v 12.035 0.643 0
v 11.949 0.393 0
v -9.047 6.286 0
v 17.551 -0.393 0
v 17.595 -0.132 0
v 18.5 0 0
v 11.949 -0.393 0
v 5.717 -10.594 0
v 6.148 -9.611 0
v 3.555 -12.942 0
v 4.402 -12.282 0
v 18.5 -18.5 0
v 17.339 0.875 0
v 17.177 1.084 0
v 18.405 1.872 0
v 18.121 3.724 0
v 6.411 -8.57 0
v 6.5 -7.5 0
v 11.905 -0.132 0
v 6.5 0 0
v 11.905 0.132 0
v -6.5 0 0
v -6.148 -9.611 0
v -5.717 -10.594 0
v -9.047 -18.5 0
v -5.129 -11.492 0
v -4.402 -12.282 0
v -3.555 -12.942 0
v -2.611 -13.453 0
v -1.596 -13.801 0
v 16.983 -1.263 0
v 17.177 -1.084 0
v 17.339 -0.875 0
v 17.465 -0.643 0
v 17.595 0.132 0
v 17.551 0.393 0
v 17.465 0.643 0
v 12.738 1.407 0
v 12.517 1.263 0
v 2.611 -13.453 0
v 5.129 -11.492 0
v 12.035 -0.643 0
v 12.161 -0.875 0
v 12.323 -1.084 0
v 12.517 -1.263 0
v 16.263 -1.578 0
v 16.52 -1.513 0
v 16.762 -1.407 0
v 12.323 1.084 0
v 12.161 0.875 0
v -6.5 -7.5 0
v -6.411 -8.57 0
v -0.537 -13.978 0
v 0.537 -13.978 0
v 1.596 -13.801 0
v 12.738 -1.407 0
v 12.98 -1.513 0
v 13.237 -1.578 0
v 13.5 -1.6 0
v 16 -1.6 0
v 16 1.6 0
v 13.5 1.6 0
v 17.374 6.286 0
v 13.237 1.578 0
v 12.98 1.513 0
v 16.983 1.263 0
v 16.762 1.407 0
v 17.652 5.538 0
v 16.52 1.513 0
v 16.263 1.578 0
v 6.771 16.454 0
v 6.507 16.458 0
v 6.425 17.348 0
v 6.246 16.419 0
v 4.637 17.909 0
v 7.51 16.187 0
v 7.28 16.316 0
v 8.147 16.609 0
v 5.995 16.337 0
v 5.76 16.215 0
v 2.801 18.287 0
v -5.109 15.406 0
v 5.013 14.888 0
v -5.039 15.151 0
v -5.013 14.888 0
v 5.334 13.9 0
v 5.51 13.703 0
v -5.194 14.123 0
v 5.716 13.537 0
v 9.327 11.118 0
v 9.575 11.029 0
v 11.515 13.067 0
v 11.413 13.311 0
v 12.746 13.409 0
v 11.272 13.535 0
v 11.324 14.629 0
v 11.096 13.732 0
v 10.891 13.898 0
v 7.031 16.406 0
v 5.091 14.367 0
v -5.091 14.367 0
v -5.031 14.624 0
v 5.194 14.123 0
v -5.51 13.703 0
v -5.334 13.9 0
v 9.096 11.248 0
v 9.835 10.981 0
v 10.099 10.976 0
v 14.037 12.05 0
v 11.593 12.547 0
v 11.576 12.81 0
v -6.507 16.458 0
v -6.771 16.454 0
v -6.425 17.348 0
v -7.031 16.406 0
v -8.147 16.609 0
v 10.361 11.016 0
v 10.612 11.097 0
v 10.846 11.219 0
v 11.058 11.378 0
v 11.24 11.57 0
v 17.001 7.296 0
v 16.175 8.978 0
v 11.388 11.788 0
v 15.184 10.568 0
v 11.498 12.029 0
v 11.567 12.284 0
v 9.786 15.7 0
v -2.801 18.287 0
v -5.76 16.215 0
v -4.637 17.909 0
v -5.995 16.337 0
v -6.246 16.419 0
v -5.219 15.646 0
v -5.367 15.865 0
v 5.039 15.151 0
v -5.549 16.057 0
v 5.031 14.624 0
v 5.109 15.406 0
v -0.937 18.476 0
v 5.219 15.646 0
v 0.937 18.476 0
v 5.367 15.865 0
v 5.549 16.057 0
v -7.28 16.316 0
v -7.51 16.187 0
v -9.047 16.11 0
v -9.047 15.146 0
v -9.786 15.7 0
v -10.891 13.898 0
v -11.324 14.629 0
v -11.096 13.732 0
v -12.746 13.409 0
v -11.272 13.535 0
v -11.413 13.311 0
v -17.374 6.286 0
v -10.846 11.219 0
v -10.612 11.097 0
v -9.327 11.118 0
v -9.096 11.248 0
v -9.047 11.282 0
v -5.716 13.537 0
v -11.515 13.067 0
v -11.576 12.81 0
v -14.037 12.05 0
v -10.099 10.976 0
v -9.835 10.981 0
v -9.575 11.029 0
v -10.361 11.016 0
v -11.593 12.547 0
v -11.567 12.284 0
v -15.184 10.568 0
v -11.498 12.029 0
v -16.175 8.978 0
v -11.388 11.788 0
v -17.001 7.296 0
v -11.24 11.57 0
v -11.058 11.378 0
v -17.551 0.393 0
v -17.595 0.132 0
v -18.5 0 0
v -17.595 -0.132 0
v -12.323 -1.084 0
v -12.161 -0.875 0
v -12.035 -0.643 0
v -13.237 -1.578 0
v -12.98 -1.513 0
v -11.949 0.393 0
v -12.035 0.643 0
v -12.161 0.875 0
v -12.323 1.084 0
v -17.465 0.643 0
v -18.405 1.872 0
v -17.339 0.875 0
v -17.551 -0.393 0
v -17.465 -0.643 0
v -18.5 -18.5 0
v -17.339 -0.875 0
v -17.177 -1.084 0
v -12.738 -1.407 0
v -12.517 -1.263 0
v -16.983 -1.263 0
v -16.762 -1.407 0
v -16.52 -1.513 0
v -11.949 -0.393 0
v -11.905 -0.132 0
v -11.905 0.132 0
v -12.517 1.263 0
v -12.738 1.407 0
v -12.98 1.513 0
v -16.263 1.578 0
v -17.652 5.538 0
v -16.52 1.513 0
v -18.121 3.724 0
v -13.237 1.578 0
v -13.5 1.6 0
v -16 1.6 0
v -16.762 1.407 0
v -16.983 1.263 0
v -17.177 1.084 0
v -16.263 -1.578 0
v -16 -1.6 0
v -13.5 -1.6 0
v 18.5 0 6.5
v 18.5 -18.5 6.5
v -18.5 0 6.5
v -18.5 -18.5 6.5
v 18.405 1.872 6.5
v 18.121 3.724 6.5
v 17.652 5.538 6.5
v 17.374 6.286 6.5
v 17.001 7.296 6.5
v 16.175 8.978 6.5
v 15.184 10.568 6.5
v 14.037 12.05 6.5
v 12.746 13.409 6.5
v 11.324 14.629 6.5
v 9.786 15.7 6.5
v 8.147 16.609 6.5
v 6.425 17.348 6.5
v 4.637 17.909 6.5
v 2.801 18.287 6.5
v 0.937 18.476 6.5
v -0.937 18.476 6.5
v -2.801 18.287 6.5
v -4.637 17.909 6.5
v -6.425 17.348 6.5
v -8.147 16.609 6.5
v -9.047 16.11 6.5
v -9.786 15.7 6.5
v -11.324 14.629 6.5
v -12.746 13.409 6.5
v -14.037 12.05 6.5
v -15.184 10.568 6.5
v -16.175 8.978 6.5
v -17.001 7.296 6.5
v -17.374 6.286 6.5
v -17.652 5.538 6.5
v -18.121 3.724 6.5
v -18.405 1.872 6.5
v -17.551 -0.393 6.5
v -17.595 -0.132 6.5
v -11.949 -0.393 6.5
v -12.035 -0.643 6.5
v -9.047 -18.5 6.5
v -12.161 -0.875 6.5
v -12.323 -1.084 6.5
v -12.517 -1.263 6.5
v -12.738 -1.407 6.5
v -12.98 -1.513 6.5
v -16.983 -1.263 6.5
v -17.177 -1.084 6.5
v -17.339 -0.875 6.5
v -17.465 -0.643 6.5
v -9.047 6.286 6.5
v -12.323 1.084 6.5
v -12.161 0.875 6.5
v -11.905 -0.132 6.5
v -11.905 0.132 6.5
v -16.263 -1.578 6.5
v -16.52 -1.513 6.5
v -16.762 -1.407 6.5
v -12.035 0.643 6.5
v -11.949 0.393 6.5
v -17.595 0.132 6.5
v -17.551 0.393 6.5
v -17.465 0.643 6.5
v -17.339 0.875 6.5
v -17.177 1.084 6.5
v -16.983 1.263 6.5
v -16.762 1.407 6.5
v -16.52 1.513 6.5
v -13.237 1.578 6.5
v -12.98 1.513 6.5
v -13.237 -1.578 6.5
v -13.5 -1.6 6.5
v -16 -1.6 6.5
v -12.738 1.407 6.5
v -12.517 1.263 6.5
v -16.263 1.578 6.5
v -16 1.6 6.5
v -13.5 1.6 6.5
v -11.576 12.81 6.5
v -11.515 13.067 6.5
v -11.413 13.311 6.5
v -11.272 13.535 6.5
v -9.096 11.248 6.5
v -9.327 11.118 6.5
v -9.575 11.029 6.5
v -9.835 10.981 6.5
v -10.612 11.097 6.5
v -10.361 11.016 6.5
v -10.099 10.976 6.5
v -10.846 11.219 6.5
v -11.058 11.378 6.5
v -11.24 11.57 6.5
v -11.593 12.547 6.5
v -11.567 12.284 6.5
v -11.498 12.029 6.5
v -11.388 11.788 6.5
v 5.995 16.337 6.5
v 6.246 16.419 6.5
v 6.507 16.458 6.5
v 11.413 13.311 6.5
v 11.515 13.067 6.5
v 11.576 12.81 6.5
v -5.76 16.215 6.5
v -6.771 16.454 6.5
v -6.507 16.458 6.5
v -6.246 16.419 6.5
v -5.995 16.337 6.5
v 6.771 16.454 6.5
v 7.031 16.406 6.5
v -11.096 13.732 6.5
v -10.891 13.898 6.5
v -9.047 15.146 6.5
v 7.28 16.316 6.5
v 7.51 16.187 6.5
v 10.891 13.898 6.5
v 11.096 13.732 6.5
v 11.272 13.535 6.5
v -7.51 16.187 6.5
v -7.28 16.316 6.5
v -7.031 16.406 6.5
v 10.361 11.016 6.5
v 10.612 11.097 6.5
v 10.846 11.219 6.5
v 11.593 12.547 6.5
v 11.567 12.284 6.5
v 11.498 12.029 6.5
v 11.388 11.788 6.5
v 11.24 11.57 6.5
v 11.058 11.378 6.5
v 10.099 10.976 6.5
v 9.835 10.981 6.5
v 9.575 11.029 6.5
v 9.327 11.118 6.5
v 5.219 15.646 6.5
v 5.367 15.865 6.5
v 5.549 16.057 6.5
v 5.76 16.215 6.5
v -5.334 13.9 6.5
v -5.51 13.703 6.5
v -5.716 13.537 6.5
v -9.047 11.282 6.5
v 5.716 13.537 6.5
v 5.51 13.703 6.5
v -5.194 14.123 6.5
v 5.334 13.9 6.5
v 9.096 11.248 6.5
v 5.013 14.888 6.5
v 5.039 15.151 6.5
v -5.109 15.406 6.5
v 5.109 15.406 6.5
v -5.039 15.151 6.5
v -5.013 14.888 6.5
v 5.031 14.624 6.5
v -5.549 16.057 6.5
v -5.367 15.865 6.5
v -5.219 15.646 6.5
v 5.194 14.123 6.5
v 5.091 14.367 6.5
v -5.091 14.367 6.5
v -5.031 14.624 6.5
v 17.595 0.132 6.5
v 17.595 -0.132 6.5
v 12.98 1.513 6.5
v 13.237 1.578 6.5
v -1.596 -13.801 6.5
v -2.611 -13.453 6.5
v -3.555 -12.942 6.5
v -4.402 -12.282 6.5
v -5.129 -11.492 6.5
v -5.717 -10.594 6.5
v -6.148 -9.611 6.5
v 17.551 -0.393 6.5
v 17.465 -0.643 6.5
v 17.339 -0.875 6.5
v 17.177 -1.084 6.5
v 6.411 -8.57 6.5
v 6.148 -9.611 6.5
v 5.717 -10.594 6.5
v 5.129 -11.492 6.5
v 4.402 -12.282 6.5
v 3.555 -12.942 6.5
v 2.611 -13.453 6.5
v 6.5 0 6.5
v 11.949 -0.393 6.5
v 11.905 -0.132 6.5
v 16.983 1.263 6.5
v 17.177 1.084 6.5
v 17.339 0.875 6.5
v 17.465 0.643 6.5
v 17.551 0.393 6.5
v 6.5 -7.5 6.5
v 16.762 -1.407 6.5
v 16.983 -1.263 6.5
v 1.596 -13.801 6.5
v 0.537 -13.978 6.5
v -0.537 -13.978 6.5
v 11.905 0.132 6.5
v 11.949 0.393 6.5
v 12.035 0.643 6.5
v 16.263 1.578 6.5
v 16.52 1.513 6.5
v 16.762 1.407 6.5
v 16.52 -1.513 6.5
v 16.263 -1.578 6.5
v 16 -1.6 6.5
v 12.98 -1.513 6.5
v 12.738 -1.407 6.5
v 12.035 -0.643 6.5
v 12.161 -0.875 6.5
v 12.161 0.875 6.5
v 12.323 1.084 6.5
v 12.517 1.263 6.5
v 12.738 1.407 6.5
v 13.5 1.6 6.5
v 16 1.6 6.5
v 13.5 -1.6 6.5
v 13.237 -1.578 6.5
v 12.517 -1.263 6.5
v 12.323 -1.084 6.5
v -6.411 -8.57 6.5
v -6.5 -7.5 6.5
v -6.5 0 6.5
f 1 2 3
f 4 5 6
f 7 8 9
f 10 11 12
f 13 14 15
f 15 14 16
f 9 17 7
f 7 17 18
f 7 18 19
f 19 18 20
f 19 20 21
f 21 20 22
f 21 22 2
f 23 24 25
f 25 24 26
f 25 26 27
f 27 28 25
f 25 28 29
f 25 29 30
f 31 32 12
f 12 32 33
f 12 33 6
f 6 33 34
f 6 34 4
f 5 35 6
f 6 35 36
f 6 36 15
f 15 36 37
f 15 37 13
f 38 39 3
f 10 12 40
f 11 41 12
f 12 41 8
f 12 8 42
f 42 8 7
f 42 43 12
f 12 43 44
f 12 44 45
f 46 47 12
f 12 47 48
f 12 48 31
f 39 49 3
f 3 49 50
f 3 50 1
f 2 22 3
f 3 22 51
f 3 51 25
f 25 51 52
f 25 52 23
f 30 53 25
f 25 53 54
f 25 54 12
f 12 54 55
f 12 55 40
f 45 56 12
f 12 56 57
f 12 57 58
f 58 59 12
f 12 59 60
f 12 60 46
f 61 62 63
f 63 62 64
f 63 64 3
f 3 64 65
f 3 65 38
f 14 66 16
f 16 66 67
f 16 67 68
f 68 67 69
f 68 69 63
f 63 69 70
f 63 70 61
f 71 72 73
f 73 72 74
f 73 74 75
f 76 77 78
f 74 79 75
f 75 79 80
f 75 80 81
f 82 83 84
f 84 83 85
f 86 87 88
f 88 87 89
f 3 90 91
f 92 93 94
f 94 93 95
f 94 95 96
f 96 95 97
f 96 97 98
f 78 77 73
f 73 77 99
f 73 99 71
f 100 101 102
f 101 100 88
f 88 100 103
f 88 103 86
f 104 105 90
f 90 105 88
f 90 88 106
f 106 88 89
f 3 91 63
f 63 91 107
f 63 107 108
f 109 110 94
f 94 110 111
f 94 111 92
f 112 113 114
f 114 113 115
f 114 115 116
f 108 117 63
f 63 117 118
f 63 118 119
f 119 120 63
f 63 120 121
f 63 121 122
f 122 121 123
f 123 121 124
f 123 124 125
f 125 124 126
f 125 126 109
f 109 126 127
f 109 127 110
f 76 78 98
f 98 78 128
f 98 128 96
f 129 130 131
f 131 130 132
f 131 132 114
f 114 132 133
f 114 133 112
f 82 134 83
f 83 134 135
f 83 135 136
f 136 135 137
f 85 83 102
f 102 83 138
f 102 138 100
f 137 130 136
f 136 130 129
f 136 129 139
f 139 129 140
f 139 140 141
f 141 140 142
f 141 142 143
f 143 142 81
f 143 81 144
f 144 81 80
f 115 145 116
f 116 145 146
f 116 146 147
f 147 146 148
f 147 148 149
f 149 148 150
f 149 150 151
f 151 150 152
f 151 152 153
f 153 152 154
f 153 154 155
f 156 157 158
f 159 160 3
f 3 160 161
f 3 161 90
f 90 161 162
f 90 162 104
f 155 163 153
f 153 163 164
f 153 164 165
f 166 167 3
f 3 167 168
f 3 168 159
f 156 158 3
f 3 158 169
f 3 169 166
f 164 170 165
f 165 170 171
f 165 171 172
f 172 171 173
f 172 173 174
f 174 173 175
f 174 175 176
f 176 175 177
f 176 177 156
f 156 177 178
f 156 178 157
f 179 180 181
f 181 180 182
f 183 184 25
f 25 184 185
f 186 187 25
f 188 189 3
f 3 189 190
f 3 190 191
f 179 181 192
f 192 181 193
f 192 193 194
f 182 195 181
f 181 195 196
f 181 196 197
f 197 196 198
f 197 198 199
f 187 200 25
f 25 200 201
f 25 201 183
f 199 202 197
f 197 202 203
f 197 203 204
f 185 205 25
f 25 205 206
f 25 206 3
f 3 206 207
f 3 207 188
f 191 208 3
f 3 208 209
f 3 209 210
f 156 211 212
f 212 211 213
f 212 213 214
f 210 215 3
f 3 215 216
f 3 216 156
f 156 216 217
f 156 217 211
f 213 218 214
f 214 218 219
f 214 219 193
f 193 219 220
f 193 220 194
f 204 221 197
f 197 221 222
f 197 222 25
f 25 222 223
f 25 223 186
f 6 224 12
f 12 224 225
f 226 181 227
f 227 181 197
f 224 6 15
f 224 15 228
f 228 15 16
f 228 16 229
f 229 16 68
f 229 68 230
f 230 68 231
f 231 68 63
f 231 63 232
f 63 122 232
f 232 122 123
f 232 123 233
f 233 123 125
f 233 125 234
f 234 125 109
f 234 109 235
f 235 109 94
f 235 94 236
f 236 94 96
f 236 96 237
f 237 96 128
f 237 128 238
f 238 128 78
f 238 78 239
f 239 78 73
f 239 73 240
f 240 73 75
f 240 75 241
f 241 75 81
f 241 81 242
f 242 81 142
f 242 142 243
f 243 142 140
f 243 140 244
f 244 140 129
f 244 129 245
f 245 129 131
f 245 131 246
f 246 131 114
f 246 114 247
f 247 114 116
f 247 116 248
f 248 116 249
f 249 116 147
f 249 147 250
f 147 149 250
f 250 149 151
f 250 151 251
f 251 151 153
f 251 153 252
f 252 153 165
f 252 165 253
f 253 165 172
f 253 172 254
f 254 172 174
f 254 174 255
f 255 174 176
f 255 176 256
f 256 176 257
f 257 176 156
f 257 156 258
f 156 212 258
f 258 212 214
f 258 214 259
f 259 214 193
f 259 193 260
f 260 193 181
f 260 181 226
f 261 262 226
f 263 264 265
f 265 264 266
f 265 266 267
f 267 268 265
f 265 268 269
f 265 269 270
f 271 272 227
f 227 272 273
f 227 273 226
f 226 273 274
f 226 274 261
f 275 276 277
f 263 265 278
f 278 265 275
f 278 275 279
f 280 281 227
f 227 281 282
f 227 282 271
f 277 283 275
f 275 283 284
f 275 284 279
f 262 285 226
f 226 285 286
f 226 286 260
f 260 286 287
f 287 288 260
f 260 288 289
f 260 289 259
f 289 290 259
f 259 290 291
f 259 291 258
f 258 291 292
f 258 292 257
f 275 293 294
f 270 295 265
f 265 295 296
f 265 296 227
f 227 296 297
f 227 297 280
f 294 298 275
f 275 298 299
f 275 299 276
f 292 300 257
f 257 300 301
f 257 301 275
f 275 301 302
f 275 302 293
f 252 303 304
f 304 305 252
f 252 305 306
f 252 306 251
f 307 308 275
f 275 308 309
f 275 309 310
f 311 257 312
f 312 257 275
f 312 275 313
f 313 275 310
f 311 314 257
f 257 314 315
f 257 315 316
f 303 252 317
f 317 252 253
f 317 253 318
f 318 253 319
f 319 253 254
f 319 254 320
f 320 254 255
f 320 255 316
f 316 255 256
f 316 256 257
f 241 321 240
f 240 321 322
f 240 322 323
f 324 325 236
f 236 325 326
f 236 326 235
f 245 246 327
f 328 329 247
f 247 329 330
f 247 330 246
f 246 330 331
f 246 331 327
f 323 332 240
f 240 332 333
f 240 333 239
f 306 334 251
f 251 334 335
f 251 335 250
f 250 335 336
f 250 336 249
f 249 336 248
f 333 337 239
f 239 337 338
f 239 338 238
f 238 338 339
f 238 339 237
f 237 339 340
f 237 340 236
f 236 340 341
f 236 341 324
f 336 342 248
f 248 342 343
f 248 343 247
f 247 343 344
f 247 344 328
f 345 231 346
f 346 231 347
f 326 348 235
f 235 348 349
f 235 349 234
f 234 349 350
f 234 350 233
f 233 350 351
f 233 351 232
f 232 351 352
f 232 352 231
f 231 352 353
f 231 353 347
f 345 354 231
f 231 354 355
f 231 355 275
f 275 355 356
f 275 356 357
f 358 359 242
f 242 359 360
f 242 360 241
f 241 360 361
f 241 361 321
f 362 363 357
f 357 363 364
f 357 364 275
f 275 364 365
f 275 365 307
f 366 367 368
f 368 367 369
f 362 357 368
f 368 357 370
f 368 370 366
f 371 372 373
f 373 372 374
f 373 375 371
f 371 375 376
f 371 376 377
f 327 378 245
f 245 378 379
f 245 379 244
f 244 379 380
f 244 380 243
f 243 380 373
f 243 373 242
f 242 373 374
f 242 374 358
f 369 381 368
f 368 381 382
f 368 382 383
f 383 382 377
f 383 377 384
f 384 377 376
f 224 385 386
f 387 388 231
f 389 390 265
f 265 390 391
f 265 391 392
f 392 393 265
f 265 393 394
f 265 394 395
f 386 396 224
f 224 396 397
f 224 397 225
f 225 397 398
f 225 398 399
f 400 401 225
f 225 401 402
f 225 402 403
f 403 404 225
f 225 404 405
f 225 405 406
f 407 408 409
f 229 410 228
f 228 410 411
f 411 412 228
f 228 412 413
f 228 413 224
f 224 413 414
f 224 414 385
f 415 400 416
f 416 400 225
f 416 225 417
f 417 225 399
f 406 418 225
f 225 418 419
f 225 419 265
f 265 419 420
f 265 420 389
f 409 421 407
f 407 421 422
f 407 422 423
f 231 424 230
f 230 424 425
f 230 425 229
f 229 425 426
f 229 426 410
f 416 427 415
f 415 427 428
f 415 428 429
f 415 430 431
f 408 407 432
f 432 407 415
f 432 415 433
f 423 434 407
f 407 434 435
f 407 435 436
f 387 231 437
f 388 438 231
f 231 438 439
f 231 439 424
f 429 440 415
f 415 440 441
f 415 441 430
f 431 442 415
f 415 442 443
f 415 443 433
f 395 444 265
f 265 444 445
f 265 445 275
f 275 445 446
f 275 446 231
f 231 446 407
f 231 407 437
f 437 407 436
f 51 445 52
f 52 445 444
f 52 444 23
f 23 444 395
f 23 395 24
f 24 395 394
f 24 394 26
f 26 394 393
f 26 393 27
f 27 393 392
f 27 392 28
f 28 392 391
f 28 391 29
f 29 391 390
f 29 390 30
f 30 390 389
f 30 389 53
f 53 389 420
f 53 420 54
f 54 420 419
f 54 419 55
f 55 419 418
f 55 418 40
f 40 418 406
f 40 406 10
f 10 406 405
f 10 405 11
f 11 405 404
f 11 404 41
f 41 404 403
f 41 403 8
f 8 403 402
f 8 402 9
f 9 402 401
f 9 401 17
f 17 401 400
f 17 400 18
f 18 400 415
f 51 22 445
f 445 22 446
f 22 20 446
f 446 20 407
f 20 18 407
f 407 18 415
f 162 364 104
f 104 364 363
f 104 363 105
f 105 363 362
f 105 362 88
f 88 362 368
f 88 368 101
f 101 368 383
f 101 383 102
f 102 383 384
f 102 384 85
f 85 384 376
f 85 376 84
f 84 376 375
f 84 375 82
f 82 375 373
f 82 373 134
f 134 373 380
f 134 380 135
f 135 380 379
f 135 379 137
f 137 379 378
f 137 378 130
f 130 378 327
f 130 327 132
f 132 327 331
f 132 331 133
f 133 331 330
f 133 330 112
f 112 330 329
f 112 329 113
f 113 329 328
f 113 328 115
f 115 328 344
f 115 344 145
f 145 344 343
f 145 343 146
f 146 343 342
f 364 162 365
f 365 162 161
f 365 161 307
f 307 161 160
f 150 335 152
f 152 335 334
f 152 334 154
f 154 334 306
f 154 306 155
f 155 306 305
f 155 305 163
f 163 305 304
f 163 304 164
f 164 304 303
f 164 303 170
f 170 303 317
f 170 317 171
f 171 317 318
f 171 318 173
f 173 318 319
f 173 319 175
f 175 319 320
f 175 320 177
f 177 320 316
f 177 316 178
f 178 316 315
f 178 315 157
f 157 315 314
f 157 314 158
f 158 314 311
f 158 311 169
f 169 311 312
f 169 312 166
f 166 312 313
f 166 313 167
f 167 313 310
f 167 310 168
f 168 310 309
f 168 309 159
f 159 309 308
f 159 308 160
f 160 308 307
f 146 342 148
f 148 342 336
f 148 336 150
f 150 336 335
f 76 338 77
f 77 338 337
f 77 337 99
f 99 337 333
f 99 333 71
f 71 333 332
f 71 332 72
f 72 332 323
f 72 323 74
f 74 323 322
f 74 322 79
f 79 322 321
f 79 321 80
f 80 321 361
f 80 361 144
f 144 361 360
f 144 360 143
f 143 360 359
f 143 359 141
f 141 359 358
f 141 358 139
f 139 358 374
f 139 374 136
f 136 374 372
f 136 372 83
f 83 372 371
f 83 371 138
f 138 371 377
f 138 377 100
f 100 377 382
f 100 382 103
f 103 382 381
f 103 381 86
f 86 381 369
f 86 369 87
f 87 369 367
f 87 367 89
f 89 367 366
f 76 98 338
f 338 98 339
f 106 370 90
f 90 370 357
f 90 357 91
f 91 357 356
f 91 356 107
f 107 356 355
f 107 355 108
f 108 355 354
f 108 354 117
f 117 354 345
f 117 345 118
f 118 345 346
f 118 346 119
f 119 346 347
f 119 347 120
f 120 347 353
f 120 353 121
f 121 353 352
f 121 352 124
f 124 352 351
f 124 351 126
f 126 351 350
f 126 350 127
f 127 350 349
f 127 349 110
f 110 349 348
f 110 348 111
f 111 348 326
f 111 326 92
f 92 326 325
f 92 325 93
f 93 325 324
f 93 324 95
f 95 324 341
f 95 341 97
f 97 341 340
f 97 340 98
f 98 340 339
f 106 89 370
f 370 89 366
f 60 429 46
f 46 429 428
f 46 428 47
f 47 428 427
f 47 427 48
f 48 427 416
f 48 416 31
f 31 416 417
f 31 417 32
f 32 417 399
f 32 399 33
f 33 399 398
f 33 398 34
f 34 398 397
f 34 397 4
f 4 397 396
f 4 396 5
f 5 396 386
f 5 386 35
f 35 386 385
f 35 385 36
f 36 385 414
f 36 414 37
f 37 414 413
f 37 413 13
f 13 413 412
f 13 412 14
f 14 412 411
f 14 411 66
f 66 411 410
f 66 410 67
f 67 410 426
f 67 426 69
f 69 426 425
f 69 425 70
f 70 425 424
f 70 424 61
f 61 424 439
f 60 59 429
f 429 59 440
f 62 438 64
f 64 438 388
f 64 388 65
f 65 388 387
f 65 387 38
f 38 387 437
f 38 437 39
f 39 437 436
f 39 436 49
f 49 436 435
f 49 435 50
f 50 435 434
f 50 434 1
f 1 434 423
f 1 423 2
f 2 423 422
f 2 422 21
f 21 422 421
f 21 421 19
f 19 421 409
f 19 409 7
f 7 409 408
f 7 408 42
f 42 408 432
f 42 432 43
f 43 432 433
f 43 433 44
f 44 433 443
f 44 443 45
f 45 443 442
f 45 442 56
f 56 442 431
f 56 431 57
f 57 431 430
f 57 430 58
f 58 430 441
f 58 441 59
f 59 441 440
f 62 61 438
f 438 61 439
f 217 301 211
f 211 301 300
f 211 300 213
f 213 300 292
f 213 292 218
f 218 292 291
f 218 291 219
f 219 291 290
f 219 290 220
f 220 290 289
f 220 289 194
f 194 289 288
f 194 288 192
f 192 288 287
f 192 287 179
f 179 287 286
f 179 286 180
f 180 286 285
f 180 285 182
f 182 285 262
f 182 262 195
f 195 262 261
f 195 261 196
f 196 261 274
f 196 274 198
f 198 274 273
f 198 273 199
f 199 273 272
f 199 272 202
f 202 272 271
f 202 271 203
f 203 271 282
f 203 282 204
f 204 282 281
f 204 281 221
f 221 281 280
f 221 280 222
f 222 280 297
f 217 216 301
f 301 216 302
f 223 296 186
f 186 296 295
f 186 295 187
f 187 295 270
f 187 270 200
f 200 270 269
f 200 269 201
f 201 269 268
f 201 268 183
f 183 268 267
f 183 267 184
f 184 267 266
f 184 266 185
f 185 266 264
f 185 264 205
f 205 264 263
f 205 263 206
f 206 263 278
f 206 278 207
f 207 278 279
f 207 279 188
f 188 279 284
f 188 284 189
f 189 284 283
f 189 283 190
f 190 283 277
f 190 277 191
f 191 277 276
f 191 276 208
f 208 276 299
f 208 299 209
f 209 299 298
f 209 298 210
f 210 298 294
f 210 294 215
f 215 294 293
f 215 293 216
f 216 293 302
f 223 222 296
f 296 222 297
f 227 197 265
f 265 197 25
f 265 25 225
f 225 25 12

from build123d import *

# Parameters (mm, degrees)
IZIM1_R                          = 18.5
Y_KSEKLIK_EKSTR_ZYON1_DEPTH      = 6.5
KES_EKSTR_ZYON1_DEPTH            = 6.5
Y_KSEKLIK_EKSTR_ZYON2_DEPTH      = 6.5
Y_KSEKLIK_EKSTR_ZYON3_DEPTH      = 30
Y_KSEKLIK_EKSTR_ZYON3_DEPTH_BACK = 6.5
IZIM4_W                          = 37
IZIM4_H                          = 4
IZIM5_W                          = 36.995441418
IZIM5_H                          = 250
Y_KSEKLIK_EKSTR_ZYON4_DEPTH      = 4
Y_KSEKLIK_EKSTR_ZYON6_DEPTH      = 6.5
Y_KSEKLIK_EKSTR_ZYON7_DEPTH      = 4
Y_KSEKLIK_EKSTR_ZYON8_DEPTH      = 6
IZIM15_W                         = 170.62151123
IZIM15_H                         = 260.400815818
KES_EKSTR_ZYON2_DEPTH            = 75.752098375
KES_EKSTR_ZYON3_DEPTH            = 8
IZIM17_W                         = 85.533609072
IZIM17_H                         = 320.477083545
KES_EKSTR_ZYON4_DEPTH            = 8
KES_EKSTR_ZYON5_DEPTH            = 8


with BuildPart() as part:
    # Çizim1 → Yükseklik-Ekstrüzyon1 (new body)
    with BuildSketch(Plane.XY):
        with Locations(Location((0, 0, 0), (0, 0, 180))):
            Circle(IZIM1_R)
    extrude(amount=Y_KSEKLIK_EKSTR_ZYON1_DEPTH)

    # Çizim2 → Kes-Ekstrüzyon1 (cut)
    with BuildSketch(Plane.XY.offset(6.5)):
        with BuildLine():
            Line((6.5, 0), (6.5, -7.5))
            ThreePointArc((6.5, -7.5), (0, -14), (-6.5, -7.5))
            Line((-6.5, -7.5), (-6.5, 0))
            Line((-6.5, 0), (6.5, 0))
        make_face()
        with BuildLine():
            Line((-16, 1.6), (-13.5, 1.6))
            ThreePointArc((-13.5, 1.6), (-11.9, 0), (-13.5, -1.6))
            Line((-13.5, -1.6), (-16, -1.6))
            ThreePointArc((-16, -1.6), (-17.6, 0), (-16, 1.6))
        make_face()
        with BuildLine():
            Line((16, -1.6), (13.5, -1.6))
            ThreePointArc((13.5, -1.6), (11.9, 0), (13.5, 1.6))
            Line((13.5, 1.6), (16, 1.6))
            ThreePointArc((16, 1.6), (17.6, 0), (16, -1.6))
        make_face()
        with BuildLine():
            Line((7.510154292, 16.186602557), (10.890511962, 13.897826987))
            ThreePointArc((10.890511962, 13.897826987), (11.31834042, 11.675899263), (9.096412696, 11.248070806))
            Line((9.096412696, 11.248070806), (5.716055026, 13.536846375))
            ThreePointArc((5.716055026, 13.536846375), (5.288226568, 15.758774099), (7.510154292, 16.186602557))
        make_face()
        with BuildLine():
            Line((-7.510154292, 16.186602557), (-10.890511962, 13.897826987))
            ThreePointArc((-10.890511962, 13.897826987), (-11.31834042, 11.675899263), (-9.096412696, 11.248070806))
            Line((-9.096412696, 11.248070806), (-5.716055026, 13.536846375))
            ThreePointArc((-5.716055026, 13.536846375), (-5.288226568, 15.758774099), (-7.510154292, 16.186602557))
        make_face()
    extrude(amount=-KES_EKSTR_ZYON1_DEPTH, mode=Mode.SUBTRACT)

    # Çizim3 → Yükseklik-Ekstrüzyon2 (add)
    with BuildSketch(Plane(origin=(0, 0, 0), x_dir=(-1, 0, 0), z_dir=(0, 0, -1))):
        with BuildLine():
            ThreePointArc((0, -18.5), (-13.081475452, -13.081475452), (-18.5, 0))
            Line((-18.5, 0), (-18.5, -18.5))
            Line((-18.5, -18.5), (0, -18.5))
        make_face()
        with BuildLine():
            Line((18.5, -18.5), (18.5, 0))
            ThreePointArc((18.5, 0), (13.081475452, -13.081475452), (0, -18.5))
            Line((0, -18.5), (18.5, -18.5))
        make_face()
    extrude(amount=-Y_KSEKLIK_EKSTR_ZYON2_DEPTH)

    # Çizim4 → Yükseklik-Ekstrüzyon3 (add, two sides: drawn at the far end of the back side and taken through both)
    with BuildSketch(Plane.XY.offset(6.5).offset(-Y_KSEKLIK_EKSTR_ZYON3_DEPTH_BACK)):
        with Locations((0, -20.5)):
            Rectangle(IZIM4_W, IZIM4_H)
    extrude(amount=Y_KSEKLIK_EKSTR_ZYON3_DEPTH + Y_KSEKLIK_EKSTR_ZYON3_DEPTH_BACK)

    # Çizim5 → Yükseklik-Ekstrüzyon4 (add)
    with BuildSketch(Plane.XZ.offset(22.5)):
        with Locations((-0.002279291, 125)):
            Rectangle(IZIM5_W, IZIM5_H)
    extrude(amount=-Y_KSEKLIK_EKSTR_ZYON4_DEPTH)

    # Çizim10 → Yükseklik-Ekstrüzyon6 (add)
    with BuildSketch(Plane.XY.offset(250)):
        with BuildLine():
            Line((-18.5, 0), (-18.5, -18.5))
            Line((-18.5, -18.5), (18.5, -18.5))
            Line((18.5, -18.5), (18.5, 0))
            ThreePointArc((18.5, 0), (0, 18.5), (-18.5, 0))
        make_face()
        with BuildLine():
            Line((5.716055026, 13.536846375), (9.096412696, 11.248070806))
            ThreePointArc((9.096412696, 11.248070806), (11.31834042, 11.675899263), (10.890511962, 13.897826987))
            Line((10.890511962, 13.897826987), (7.510154292, 16.186602557))
            ThreePointArc((7.510154292, 16.186602557), (5.288226568, 15.758774099), (5.716055026, 13.536846375))
        make_face(mode=Mode.SUBTRACT)
        with BuildLine():
            Line((-7.510154292, 16.186602557), (-10.890511962, 13.897826987))
            ThreePointArc((-10.890511962, 13.897826987), (-11.31834042, 11.675899263), (-9.096412696, 11.248070806))
            Line((-9.096412696, 11.248070806), (-5.716055026, 13.536846375))
            ThreePointArc((-5.716055026, 13.536846375), (-5.288226568, 15.758774099), (-7.510154292, 16.186602557))
        make_face(mode=Mode.SUBTRACT)
        with BuildLine():
            Line((-13.5, 1.6), (-16, 1.6))
            ThreePointArc((-16, 1.6), (-17.6, 0), (-16, -1.6))
            Line((-16, -1.6), (-13.5, -1.6))
            ThreePointArc((-13.5, -1.6), (-11.9, 0), (-13.5, 1.6))
        make_face(mode=Mode.SUBTRACT)
        with BuildLine():
            Line((6.5, -7.5), (6.5, 0))
            Line((6.5, 0), (-6.5, 0))
            Line((-6.5, 0), (-6.5, -7.5))
            ThreePointArc((-6.5, -7.5), (0, -14), (6.5, -7.5))
        make_face(mode=Mode.SUBTRACT)
        with BuildLine():
            Line((13.5, -1.6), (16, -1.6))
            ThreePointArc((16, -1.6), (17.6, 0), (16, 1.6))
            Line((16, 1.6), (13.5, 1.6))
            ThreePointArc((13.5, 1.6), (11.9, 0), (13.5, -1.6))
        make_face(mode=Mode.SUBTRACT)
    extrude(amount=-Y_KSEKLIK_EKSTR_ZYON6_DEPTH)

    # Çizim12 → Yükseklik-Ekstrüzyon7 (add)
    with BuildSketch(Plane(origin=(0, -18.5, 0), x_dir=(1, 0, 0), z_dir=(0, 1, 0))):
        with BuildLine():
            Line((-18.5, 0), (-18.5, -250))
            ThreePointArc((-18.5, -250), (-136.505823788, -125), (-18.5, 0))
        make_face()
    extrude(amount=-Y_KSEKLIK_EKSTR_ZYON7_DEPTH)

    # Çizim14 → Yükseklik-Ekstrüzyon8 (add)
    with BuildSketch(Plane.XZ.offset(22.5)):
        with BuildLine():
            Line((18.5, 36.5), (18.495441418, 36.5))
            Line((18.495441418, 36.5), (18.495441418, 250))
            Line((18.495441418, 250), (-18.5, 250))
            ThreePointArc((-18.5, 250), (-136.505823788, 125), (-18.5, 0))
            Line((-18.5, 0), (18.5, 0))
            Line((18.5, 0), (18.5, 36.5))
        make_face()
    extrude(amount=Y_KSEKLIK_EKSTR_ZYON8_DEPTH)

    # Çizim15 → Kes-Ekstrüzyon2 (cut)
    with BuildSketch(Plane(origin=(0, -18.5, 0), x_dir=(1, 0, 0), z_dir=(0, 1, 0))):
        with Locations((-103.810755615, -130.200407909)):
            Rectangle(IZIM15_W, IZIM15_H)
    extrude(amount=-KES_EKSTR_ZYON2_DEPTH, mode=Mode.SUBTRACT)

    # Çizim16 → Kes-Ekstrüzyon3 (cut)
    with BuildSketch(Plane.XZ.offset(28.5)):
        Polygon((-18.5, 250), (-18.5, 0), (18.5, 0), (18.5, 36.5), (18.495441418, 36.5), (18.495441418, 250), align=None)
    extrude(amount=-KES_EKSTR_ZYON3_DEPTH, mode=Mode.SUBTRACT)

    # Çizim17 → Kes-Ekstrüzyon4 (cut)
    with BuildSketch(Plane(origin=(0, -18.5, 0), x_dir=(1, 0, 0), z_dir=(0, 1, 0))):
        with Locations((24.266804536, -83.261458228)):
            Rectangle(IZIM17_W, IZIM17_H)
    extrude(amount=-KES_EKSTR_ZYON4_DEPTH, mode=Mode.SUBTRACT)


with BuildPart() as kes_ekstr_zyon4_piece_1:
    # of the separate pieces the step leaves, piece 1, a body of its own (kes_ekstr_zyon4_pieces)
    add(part.part.solids().sort_by_distance((-18.5, 0, 243.5))[0])

    # Çizim18 → Kes-Ekstrüzyon5 (cut)
    with BuildSketch(Plane(origin=(0, 0, 243.5), x_dir=(-1, 0, 0), z_dir=(0, 0, -1))):
        with BuildLine():
            Line((-18.5, 0), (-18.5, -18.5))
            Line((-18.5, -18.5), (-18.495441418, -18.5))
            Line((-18.495441418, -18.5), (-18.495441418, -20.5))
            Line((-18.495441418, -20.5), (18.5, -20.5))
            Line((18.5, -20.5), (18.5, 0))
            ThreePointArc((18.5, 0), (0, 18.5), (-18.5, 0))
        make_face()
    extrude(amount=-KES_EKSTR_ZYON5_DEPTH, mode=Mode.SUBTRACT)


with BuildPart() as kes_ekstr_zyon4_piece_2:
    # of the separate pieces the step leaves, piece 2, a body of its own (kes_ekstr_zyon4_pieces)
    add(part.part.solids().sort_by_distance((-18.5, 0, 0))[0])


solid = kes_ekstr_zyon4_piece_2.part
